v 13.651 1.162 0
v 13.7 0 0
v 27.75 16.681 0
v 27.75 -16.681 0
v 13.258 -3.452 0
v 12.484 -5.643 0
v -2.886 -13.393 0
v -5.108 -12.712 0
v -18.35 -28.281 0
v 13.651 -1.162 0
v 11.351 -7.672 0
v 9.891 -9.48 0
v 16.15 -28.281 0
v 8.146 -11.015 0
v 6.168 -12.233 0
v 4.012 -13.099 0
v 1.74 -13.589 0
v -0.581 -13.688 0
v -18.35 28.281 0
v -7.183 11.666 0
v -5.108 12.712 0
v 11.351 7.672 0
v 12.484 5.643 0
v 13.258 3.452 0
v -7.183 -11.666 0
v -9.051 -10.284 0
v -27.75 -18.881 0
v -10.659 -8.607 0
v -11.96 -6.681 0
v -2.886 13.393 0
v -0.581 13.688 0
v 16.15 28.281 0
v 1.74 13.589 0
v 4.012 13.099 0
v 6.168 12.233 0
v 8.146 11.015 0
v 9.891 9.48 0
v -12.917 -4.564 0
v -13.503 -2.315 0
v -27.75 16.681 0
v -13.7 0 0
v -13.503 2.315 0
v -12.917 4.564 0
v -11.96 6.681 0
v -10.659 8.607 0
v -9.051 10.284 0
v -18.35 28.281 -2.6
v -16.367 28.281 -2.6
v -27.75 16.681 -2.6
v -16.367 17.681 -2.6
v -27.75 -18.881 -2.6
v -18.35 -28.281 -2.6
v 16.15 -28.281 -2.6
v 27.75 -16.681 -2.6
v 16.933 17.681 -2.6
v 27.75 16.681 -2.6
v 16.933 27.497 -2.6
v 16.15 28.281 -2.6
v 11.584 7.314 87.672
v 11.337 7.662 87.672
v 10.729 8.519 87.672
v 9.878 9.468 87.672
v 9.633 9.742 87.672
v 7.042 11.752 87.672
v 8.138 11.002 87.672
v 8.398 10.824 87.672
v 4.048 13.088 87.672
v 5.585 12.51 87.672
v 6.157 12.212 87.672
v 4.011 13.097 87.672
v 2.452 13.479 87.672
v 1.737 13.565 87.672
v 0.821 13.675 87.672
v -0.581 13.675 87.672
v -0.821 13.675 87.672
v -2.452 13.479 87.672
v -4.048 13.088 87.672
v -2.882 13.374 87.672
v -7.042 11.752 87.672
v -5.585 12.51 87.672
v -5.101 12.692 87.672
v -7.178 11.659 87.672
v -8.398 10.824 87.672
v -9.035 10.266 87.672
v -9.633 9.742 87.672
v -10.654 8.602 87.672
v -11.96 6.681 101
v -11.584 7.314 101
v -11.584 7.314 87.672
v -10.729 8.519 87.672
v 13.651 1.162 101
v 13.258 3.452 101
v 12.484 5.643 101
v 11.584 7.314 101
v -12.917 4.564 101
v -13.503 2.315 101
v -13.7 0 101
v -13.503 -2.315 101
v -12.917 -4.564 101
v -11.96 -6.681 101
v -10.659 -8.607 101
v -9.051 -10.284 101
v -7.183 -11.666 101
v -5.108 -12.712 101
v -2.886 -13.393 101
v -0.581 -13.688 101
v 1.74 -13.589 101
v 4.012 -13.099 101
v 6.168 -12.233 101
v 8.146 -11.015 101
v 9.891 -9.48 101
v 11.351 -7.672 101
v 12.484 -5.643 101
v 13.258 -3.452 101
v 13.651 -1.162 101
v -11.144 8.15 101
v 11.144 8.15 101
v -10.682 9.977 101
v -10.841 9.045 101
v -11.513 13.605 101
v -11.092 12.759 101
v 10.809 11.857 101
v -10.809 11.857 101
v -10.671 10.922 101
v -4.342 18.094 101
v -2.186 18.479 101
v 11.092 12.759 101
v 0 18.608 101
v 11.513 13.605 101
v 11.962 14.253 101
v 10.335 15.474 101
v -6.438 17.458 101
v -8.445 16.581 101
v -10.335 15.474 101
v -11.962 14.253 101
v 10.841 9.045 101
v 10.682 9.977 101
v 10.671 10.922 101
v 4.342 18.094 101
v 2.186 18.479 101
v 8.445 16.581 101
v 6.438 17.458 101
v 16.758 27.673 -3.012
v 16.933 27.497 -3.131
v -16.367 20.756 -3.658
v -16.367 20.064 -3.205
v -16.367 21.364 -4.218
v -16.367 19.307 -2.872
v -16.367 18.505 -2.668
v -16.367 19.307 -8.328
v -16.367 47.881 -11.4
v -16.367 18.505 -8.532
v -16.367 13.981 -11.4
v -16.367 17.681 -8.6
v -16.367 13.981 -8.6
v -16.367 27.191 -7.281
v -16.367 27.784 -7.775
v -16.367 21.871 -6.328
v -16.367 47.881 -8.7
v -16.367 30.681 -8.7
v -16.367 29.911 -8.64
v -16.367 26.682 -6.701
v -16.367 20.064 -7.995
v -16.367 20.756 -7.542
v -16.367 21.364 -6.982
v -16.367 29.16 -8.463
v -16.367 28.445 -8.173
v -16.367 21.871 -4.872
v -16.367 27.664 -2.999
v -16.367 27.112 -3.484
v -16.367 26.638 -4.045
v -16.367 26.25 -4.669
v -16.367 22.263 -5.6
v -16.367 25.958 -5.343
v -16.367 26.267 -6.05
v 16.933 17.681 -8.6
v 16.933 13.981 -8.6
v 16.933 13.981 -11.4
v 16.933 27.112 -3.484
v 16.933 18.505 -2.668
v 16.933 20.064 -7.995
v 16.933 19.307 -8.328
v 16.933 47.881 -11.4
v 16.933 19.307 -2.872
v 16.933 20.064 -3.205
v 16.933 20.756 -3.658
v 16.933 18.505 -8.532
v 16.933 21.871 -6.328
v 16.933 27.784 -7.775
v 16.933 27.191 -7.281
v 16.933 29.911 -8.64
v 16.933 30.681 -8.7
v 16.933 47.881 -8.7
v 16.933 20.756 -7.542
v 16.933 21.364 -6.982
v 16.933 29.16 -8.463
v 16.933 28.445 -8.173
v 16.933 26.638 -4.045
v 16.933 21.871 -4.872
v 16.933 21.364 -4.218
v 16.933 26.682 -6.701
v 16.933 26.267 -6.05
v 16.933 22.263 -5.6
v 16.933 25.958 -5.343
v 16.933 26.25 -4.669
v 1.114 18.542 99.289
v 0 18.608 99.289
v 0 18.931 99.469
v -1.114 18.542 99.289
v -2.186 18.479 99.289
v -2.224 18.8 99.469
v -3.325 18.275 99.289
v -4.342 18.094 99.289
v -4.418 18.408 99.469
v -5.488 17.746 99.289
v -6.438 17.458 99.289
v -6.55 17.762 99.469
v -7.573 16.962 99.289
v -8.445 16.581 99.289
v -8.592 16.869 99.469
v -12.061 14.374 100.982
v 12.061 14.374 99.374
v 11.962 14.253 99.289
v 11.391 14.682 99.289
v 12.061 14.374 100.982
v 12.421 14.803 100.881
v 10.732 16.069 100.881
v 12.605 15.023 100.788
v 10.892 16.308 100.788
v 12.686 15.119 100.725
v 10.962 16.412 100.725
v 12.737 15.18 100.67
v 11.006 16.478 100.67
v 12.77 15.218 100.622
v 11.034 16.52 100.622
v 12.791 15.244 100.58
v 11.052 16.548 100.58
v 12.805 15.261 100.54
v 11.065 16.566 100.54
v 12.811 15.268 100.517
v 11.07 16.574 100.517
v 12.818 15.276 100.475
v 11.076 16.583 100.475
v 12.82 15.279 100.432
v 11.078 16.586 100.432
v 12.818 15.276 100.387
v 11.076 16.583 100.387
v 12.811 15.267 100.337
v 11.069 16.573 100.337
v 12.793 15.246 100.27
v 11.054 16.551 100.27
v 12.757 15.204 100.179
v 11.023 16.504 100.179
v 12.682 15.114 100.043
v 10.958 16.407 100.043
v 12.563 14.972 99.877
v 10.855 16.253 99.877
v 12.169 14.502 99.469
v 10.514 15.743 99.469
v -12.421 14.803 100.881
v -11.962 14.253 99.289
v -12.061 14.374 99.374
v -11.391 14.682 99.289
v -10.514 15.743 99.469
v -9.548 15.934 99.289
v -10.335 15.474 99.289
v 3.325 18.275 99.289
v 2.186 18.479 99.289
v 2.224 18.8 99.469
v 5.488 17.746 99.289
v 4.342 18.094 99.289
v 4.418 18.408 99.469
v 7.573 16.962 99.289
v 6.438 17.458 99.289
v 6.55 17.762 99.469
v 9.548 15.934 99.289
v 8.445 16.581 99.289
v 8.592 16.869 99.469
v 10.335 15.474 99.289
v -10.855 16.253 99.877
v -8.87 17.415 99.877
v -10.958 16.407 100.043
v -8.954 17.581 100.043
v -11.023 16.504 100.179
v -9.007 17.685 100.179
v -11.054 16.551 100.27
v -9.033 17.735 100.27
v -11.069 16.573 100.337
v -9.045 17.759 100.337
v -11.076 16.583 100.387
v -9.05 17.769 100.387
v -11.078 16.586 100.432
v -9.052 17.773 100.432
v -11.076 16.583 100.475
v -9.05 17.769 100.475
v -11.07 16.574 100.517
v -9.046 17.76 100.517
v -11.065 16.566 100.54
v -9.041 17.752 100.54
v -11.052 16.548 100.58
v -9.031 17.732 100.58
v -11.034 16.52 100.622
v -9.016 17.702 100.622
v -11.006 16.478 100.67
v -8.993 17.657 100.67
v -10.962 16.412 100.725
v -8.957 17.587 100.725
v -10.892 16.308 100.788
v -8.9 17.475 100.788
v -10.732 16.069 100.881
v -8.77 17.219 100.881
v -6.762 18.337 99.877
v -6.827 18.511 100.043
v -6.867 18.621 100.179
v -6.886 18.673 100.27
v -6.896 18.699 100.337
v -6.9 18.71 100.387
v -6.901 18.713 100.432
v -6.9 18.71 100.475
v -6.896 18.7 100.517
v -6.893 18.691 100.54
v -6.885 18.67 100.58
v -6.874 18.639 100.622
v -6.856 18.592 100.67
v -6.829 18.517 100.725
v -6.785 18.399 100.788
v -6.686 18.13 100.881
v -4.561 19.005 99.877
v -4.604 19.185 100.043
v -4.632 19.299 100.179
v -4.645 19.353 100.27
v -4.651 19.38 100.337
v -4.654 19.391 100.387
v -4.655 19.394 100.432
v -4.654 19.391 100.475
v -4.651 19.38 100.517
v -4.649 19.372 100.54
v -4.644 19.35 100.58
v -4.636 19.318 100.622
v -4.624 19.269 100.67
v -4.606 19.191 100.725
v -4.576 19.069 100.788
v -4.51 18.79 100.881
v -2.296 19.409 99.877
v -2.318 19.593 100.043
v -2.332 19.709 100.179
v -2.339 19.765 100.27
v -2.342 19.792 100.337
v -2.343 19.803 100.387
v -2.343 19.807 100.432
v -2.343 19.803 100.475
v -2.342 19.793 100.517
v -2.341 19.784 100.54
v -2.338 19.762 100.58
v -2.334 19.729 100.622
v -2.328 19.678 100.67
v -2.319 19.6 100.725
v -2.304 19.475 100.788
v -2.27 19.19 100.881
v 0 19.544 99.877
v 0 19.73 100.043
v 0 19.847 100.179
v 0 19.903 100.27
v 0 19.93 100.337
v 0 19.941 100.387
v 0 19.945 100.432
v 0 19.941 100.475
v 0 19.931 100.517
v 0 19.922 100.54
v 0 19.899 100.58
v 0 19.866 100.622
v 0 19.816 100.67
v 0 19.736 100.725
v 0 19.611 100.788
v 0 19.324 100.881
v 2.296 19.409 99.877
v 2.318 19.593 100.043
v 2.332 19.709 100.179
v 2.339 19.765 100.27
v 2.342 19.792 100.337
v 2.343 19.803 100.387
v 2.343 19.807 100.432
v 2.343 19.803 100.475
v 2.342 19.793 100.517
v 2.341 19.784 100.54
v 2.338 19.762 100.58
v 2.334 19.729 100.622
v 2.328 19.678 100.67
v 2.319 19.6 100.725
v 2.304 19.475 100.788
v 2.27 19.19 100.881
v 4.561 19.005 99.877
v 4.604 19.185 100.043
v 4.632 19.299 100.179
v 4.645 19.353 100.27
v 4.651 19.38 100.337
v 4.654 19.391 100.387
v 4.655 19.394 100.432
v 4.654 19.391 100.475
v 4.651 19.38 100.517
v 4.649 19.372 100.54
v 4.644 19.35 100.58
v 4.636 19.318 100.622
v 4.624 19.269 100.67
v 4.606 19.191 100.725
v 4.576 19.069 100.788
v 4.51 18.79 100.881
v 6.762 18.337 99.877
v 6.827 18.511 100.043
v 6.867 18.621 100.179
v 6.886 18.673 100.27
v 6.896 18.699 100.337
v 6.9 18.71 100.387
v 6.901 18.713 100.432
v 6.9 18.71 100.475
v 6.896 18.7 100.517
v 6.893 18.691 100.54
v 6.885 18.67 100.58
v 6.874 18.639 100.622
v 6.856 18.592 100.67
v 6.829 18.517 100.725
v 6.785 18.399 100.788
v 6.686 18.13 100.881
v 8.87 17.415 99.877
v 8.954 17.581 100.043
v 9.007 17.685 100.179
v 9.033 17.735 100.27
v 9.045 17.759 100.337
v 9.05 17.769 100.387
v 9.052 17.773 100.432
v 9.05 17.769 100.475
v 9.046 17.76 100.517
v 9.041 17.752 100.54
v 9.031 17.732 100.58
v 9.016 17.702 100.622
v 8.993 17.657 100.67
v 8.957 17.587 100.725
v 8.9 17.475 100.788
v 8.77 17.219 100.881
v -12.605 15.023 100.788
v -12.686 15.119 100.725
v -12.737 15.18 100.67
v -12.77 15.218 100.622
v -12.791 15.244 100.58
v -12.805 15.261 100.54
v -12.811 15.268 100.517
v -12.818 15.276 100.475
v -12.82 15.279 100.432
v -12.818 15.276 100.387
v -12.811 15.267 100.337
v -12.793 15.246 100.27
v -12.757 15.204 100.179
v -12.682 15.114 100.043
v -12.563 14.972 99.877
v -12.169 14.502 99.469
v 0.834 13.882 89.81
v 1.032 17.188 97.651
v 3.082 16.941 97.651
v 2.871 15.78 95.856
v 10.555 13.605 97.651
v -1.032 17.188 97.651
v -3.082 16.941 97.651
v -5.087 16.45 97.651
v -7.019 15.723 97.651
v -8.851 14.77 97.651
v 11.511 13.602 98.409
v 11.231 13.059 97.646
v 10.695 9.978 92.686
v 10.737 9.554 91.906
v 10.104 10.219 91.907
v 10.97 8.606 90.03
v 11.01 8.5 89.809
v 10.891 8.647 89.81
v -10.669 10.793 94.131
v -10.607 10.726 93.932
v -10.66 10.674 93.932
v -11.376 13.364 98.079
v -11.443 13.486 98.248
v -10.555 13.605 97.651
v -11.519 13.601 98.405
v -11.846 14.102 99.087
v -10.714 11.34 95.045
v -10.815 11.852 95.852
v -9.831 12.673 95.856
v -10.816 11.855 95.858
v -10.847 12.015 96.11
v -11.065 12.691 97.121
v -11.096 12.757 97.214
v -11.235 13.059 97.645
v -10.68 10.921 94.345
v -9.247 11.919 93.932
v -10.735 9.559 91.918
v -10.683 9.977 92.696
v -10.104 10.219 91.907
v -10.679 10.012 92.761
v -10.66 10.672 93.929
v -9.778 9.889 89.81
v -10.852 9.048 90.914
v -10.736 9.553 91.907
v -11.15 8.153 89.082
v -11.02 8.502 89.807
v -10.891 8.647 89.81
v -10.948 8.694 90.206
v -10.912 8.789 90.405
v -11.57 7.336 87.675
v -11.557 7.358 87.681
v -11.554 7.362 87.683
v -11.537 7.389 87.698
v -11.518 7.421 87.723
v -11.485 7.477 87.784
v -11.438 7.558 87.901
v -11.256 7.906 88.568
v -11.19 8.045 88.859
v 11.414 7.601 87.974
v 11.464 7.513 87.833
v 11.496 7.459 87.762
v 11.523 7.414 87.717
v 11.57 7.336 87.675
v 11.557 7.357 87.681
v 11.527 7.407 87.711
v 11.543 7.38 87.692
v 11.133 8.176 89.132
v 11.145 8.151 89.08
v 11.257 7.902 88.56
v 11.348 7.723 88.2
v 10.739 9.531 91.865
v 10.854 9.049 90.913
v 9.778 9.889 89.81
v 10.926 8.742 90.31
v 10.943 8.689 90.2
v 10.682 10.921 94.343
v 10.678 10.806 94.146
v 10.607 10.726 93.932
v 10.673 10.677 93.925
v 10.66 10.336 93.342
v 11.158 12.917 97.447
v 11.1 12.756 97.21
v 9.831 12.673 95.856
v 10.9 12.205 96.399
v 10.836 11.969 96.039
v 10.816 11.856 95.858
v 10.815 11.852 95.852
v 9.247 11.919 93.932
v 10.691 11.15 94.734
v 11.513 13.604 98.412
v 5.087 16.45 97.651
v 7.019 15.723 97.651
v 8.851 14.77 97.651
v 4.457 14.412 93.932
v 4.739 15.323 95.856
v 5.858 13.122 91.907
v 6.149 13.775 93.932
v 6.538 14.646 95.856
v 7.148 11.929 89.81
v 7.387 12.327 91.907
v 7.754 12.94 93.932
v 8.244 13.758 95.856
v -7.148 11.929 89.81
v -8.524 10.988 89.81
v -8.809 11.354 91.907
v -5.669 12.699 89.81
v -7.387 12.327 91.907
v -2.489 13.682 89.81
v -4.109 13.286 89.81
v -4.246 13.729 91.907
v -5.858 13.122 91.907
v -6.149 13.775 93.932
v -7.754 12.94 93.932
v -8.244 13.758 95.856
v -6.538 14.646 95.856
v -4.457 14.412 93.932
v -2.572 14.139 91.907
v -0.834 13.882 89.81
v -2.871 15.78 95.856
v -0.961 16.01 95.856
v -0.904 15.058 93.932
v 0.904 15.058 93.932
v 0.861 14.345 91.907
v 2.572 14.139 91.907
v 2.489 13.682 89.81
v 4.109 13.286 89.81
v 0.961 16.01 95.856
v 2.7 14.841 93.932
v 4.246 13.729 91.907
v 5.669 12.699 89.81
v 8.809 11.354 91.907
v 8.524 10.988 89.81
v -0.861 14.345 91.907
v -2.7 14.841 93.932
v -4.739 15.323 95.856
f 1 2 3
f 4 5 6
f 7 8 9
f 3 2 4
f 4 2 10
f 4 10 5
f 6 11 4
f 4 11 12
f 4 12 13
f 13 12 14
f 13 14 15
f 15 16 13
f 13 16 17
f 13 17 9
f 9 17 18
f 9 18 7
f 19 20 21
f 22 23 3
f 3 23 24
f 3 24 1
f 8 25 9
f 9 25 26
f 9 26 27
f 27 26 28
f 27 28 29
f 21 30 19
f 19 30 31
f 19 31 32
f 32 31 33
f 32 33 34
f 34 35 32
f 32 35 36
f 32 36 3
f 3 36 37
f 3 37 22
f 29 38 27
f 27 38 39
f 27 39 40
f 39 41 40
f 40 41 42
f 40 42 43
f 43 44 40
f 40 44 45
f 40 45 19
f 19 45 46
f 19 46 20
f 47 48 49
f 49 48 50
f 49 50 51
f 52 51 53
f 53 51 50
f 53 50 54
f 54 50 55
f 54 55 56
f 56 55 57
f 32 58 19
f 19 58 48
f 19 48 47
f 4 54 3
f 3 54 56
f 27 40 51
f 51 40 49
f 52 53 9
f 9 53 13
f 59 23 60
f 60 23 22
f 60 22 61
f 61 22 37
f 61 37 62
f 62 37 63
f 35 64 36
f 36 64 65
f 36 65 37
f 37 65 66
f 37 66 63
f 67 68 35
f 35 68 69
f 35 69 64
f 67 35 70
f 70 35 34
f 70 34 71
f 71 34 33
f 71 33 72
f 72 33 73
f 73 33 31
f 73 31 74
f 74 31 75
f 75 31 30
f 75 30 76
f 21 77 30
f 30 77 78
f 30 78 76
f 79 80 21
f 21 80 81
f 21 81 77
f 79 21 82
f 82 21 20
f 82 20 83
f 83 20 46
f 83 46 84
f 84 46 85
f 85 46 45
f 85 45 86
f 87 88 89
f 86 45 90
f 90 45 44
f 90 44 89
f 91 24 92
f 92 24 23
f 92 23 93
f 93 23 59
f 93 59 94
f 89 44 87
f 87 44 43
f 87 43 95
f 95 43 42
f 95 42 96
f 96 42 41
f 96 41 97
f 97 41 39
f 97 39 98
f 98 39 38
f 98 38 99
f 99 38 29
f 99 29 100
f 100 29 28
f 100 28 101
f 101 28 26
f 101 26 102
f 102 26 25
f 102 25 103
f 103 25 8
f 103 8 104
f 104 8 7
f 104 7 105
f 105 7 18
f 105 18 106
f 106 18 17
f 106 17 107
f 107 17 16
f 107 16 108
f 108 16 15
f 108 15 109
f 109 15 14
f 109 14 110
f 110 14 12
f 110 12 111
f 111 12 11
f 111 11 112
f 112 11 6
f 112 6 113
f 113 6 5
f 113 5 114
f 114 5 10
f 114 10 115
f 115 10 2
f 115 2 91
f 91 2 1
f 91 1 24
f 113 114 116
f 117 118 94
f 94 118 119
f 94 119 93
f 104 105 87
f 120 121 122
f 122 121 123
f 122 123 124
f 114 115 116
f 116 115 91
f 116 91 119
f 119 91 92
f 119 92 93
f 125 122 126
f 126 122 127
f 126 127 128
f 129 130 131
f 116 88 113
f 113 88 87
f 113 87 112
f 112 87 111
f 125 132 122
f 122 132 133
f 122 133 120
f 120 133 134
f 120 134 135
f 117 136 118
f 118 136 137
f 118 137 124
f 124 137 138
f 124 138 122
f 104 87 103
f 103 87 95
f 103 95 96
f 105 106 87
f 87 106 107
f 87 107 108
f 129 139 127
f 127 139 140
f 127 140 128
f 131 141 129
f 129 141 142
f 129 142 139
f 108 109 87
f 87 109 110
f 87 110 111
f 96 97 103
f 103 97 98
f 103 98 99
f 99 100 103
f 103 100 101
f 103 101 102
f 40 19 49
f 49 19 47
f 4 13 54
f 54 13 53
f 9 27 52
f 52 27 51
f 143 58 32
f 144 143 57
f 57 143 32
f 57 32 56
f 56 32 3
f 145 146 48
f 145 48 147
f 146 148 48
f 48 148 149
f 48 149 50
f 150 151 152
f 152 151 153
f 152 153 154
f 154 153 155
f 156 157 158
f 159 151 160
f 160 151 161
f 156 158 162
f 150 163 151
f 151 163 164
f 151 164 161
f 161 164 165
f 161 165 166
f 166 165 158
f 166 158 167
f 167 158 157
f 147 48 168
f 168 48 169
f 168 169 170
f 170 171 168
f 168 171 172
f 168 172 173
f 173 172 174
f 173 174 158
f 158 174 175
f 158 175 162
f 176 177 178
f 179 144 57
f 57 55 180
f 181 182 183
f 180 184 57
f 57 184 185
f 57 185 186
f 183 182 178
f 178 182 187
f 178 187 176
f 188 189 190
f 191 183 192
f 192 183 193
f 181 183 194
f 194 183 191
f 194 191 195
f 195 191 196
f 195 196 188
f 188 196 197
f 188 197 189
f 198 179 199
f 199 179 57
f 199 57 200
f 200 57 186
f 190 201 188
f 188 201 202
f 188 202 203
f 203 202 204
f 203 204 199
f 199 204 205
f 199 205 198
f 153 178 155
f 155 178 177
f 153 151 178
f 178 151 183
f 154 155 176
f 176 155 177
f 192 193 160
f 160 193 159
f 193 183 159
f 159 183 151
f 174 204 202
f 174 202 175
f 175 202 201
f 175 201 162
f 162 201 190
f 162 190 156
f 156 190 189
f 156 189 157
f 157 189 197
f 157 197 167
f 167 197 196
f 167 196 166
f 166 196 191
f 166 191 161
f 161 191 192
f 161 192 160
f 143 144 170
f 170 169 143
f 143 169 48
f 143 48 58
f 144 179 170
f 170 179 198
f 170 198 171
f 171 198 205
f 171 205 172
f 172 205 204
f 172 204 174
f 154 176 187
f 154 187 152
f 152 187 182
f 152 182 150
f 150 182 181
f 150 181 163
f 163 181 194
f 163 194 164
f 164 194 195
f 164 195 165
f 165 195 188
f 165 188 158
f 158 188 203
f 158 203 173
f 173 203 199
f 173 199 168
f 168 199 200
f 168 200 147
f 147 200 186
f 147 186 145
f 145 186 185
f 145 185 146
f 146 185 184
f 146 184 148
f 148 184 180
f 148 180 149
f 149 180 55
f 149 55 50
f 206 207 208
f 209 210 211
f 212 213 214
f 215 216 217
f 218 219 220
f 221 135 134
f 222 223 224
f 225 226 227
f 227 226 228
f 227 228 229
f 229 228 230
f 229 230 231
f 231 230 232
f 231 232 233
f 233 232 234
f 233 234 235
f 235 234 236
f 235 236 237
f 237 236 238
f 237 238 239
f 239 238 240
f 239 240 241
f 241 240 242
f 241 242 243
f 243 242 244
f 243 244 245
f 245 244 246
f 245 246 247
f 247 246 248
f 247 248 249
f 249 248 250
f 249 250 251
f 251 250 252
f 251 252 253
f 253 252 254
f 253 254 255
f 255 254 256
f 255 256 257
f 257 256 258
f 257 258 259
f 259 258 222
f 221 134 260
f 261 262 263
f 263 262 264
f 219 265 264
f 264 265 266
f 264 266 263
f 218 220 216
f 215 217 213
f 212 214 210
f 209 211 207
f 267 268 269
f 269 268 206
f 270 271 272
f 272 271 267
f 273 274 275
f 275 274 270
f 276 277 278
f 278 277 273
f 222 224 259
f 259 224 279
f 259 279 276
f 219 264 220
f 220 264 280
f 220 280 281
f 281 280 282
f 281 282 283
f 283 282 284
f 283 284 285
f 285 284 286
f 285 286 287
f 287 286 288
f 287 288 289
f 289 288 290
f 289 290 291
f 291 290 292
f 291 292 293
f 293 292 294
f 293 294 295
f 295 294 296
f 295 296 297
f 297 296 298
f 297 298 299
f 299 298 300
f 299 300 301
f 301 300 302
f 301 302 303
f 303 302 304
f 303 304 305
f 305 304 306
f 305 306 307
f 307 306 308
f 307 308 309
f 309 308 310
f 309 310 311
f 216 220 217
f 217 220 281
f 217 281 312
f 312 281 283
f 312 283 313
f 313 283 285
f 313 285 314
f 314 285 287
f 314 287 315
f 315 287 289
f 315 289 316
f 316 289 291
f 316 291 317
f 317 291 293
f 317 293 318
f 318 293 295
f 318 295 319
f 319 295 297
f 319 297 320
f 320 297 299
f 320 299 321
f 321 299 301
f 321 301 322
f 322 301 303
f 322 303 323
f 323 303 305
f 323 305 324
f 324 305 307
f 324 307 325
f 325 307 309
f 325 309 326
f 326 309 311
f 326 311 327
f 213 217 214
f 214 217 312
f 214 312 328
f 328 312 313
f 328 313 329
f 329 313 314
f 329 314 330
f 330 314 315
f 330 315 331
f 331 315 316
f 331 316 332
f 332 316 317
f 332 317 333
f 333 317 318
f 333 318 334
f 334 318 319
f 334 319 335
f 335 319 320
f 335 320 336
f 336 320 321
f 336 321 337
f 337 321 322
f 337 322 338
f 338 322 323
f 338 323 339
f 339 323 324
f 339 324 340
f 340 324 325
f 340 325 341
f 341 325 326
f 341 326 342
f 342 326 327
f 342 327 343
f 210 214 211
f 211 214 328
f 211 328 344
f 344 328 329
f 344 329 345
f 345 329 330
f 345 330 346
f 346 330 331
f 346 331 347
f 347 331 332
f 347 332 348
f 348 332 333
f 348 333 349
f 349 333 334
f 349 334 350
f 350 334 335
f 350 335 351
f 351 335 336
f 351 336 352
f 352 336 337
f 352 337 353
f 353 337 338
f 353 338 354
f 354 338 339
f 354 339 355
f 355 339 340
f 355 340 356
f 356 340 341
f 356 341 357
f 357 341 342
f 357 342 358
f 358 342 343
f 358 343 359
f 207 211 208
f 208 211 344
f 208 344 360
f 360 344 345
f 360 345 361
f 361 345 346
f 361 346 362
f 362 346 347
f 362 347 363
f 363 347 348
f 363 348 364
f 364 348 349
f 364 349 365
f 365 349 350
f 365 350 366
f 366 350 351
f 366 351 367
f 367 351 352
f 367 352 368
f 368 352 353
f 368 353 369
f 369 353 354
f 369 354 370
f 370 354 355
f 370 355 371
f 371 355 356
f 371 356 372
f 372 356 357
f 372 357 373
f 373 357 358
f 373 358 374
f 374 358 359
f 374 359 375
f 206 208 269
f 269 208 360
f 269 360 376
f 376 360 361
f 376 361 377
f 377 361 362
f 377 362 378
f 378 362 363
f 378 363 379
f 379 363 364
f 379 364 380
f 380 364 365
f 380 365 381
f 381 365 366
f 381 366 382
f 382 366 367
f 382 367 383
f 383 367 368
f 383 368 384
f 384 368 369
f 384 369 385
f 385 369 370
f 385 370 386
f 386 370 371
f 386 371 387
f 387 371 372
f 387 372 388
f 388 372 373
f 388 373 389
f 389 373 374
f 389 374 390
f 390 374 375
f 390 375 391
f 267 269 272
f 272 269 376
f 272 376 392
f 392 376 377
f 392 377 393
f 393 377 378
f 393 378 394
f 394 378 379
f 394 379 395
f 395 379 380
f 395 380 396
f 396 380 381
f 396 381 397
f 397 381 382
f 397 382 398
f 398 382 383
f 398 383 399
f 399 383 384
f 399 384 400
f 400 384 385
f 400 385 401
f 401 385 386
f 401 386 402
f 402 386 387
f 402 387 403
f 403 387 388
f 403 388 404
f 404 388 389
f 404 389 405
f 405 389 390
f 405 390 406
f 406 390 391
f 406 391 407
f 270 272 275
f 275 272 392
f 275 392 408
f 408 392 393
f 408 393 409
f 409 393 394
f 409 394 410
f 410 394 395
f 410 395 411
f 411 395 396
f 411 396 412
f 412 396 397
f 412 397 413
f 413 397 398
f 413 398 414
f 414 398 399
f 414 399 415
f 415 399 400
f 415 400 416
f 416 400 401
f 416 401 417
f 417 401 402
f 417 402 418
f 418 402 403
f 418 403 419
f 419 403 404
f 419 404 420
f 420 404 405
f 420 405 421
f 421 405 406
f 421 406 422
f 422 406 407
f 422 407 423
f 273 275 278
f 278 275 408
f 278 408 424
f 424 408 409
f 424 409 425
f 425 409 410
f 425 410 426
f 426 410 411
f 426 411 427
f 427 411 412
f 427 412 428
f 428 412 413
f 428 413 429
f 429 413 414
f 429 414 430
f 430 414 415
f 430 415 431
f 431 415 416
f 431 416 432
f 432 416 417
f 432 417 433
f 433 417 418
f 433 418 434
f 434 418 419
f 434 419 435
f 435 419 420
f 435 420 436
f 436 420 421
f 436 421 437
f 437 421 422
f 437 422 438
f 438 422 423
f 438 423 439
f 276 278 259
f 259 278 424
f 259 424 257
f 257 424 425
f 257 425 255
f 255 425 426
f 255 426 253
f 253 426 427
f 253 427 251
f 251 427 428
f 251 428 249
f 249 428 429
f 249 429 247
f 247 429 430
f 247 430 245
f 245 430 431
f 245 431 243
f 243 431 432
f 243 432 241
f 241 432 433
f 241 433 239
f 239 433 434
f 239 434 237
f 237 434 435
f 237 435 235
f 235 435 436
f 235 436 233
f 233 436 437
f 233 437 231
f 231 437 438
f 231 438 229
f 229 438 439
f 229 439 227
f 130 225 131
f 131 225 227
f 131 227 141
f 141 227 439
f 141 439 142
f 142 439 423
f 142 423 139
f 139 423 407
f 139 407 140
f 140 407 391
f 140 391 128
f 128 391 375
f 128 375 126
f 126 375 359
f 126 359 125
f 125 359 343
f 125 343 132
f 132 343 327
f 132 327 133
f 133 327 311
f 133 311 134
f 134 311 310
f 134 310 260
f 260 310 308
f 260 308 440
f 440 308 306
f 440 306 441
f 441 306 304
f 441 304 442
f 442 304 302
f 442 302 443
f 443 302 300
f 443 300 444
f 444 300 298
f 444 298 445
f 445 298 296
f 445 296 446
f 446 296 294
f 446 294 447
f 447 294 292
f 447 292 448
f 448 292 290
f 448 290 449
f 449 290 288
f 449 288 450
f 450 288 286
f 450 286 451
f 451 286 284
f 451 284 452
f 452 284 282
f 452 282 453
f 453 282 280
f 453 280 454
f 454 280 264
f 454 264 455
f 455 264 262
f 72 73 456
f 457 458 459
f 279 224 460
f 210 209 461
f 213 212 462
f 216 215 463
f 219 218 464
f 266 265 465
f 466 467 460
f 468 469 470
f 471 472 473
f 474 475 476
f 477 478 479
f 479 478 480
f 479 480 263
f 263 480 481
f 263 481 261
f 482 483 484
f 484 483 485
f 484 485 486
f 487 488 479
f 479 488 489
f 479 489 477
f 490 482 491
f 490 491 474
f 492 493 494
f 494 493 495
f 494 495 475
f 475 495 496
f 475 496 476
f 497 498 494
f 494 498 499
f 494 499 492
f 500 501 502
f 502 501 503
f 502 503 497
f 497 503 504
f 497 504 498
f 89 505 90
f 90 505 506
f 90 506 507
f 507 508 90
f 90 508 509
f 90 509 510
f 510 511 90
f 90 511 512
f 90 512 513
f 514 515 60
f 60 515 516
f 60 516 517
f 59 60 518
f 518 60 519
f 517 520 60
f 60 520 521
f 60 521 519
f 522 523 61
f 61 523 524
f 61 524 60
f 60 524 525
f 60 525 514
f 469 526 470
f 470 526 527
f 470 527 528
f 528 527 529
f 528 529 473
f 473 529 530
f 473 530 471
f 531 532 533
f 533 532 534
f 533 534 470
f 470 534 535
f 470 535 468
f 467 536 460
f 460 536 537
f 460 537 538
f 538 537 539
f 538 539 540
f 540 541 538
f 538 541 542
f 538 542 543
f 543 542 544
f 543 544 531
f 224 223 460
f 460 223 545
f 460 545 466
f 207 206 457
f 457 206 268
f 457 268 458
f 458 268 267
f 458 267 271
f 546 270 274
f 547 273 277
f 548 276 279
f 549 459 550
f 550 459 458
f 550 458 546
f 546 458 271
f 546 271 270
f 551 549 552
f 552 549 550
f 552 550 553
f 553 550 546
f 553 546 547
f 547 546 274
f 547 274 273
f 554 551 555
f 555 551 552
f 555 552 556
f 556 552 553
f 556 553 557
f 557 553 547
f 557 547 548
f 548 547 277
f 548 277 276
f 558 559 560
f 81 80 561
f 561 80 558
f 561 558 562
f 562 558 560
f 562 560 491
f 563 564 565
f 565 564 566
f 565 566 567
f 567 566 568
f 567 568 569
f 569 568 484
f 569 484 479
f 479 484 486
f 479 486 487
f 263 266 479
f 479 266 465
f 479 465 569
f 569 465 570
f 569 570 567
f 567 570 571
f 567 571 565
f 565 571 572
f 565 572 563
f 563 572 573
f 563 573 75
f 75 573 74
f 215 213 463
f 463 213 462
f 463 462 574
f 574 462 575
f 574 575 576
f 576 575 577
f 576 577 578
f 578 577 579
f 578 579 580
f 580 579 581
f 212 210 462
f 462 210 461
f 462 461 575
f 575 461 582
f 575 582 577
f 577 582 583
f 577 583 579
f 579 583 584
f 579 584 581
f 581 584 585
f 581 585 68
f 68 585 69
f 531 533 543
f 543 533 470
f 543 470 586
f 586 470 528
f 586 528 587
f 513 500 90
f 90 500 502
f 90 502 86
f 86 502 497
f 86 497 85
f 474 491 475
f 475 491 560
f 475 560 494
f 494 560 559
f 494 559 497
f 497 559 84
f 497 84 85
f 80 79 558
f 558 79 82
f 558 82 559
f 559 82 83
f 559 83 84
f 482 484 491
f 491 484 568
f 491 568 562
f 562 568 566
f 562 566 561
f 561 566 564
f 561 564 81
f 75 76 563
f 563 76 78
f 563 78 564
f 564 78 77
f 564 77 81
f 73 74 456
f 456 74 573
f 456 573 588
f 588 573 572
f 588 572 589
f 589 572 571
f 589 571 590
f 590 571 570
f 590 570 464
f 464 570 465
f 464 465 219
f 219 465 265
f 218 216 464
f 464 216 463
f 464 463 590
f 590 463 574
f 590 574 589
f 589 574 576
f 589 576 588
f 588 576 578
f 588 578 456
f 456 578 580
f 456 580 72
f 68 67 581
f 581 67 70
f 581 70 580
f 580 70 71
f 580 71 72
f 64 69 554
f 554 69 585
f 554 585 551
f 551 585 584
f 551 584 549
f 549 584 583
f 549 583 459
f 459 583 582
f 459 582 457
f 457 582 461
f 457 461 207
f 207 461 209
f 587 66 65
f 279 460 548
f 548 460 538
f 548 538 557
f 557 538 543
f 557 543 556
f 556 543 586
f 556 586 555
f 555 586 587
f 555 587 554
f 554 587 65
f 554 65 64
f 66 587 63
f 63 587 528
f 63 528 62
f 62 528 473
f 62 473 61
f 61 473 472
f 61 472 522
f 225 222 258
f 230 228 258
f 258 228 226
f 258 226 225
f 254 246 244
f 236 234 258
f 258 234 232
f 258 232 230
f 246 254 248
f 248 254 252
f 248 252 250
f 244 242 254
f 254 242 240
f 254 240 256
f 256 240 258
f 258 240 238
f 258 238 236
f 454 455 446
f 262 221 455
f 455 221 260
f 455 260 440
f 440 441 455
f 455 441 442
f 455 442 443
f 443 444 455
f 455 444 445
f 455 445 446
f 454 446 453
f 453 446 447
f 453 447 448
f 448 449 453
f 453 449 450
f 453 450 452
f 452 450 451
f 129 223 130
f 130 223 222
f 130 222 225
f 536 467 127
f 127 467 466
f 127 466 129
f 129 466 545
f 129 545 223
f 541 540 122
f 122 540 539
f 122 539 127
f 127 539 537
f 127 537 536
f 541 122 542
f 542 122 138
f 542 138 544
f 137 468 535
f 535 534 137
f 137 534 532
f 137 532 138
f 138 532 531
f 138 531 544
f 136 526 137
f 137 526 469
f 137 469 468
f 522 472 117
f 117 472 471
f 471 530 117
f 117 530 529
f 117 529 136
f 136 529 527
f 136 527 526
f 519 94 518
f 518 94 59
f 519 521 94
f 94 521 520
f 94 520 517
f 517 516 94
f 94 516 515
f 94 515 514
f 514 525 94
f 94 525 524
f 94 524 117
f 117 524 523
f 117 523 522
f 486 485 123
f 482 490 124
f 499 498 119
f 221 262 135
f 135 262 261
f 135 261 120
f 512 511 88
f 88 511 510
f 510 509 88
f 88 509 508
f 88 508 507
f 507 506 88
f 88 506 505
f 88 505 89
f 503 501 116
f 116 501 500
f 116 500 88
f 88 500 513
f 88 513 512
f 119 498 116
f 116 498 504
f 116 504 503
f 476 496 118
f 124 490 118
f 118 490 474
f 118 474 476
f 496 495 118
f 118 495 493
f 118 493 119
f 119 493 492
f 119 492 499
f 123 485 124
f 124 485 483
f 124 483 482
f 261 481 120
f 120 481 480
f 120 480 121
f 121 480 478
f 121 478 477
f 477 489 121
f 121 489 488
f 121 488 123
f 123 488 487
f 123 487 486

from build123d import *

# Parameters (mm, degrees)
SKETCH1_R                = 13.7
BOSS_EXTRUDE1_DEPTH      = 101
SKETCH5_W                = 55.5
SKETCH5_H                = 56.561345004
BOSS_EXTRUDE2_DEPTH      = 2.6
CUT_EXTRUDE4_DEPTH       = 2.6
BOSS_EXTRUDE4_DEPTH      = 6
SKETCH8_W                = 33.3
SKETCH8_H                = 11.7
BOSS_EXTRUDE5_DEPTH      = 2.8
SKETCH9_W                = 33.3
SKETCH9_H                = 2.7
BOSS_EXTRUDE6_DEPTH      = 22.2
FILLET2_R                = 5
REVOLVE1_ANGLE           = 40
REVOLVE1_OTHER_WAY_ANGLE = 40
FILLET4_R                = 6
FILLET5_R                = 6


with BuildPart() as part:
    # Sketch1 → Boss-Extrude1 (new body)
    with BuildSketch(Plane.XY):
        with Locations(Location((0, 0, 0), (0, 0, 180))):
            Circle(SKETCH1_R)
    extrude(amount=BOSS_EXTRUDE1_DEPTH)

    # Sketch5 → Boss-Extrude2 (add)
    with BuildSketch(Plane(origin=(0, 0, 0), x_dir=(-1, 0, 0), z_dir=(0, 0, -1))):
        Rectangle(SKETCH5_W, SKETCH5_H)
    extrude(amount=BOSS_EXTRUDE2_DEPTH)

    # Sketch6 → Cut-Extrude4 (cut)
    with BuildSketch(Plane(origin=(0, 0, -2.6), x_dir=(-1, 0, 0), z_dir=(0, 0, -1))):
        Polygon((27.75, 28.280672502), (18.35, 28.280672502), (27.75, 16.680672502), align=None)
        Polygon((-16.15, -28.280672502), (-27.75, -16.680672502), (-27.75, -28.280672502), align=None)
        Polygon((27.75, -18.880672502), (18.35, -28.280672502), (27.75, -28.280672502), align=None)
        Polygon((-27.75, 16.680672502), (-27.75, 28.280672502), (-16.15, 28.280672502), align=None)
    extrude(amount=-CUT_EXTRUDE4_DEPTH, mode=Mode.SUBTRACT)

    # Sketch7 → Boss-Extrude4 (add)
    with BuildSketch(Plane(origin=(0, 0, -2.6), x_dir=(-1, 0, 0), z_dir=(0, 0, -1))):
        Polygon((1.1, 25.680672502), (16.366645995, 25.680672502), (16.366645995, 22.680672502), (-16.933354005, 22.680672502), (-16.933354005, 25.680672502), align=None)
    extrude(amount=BOSS_EXTRUDE4_DEPTH)

    # Sketch8 → Boss-Extrude5 (add)
    with BuildSketch(Plane(origin=(0, 0, -8.6), x_dir=(-1, 0, 0), z_dir=(0, 0, -1))):
        with Locations((-0.283354005, 19.830672502)):
            Rectangle(SKETCH8_W, SKETCH8_H)
    extrude(amount=BOSS_EXTRUDE5_DEPTH)

    # Sketch9 → Boss-Extrude6 (add)
    with BuildSketch(Plane(origin=(0, 25.680672502, 0), x_dir=(1, 0, 0), z_dir=(0, 1, 0))):
        with Locations((0.283354005, 10.05)):
            Rectangle(SKETCH9_W, SKETCH9_H)
    extrude(amount=BOSS_EXTRUDE6_DEPTH)

    # Fillet2
    # the kernel refuses this fillet: 5 mm, written as the material it adds along each edge
    with BuildSketch(Plane(origin=(-16.366645995, 25.680672502, -2.6), x_dir=(0, 1, 0), z_dir=(1, 0, 0))) as fillet2_piece_1_section:
        with BuildLine():
            CenterArc((5, -4.38634244), FILLET2_R, 118.685402014, 61.314597986)
            Line((0, -4.38634244), (-0.1, -4.38634244))
            Line((-0.1, -4.38634244), (-0.1, 0))
            Line((-0.1, 0), (0, 0.1))
            ThreePointArc((0, 0.1), (1.3, 0.1), (2.552, 0.087726849))
            Line((2.552, 0.087726849), (2.6, 0))
        make_face()
    fillet2_piece_1 = extrude(amount=33.3, mode=Mode.PRIVATE)
    fillet2_piece_1 = split(fillet2_piece_1, bisect_by=Plane(origin=(9.175527955, 35.255144547, -3.690317045), z_dir=(-0.7071067811865442, -0.7071067811865509, 0)), keep=Keep.TOP, mode=Mode.PRIVATE)
    add(fillet2_piece_1)
    with BuildSketch(Plane(origin=(-16.366645995, 22.680672502, -2.6), x_dir=(0, -1, 0), z_dir=(1, 0, 0))) as fillet2_piece_2:
        with BuildLine():
            CenterArc((FILLET2_R, FILLET2_R), FILLET2_R, 180, 90)
            Line((0, FILLET2_R), (-FILLET2_R * 0.02, FILLET2_R))
            Line((-FILLET2_R * 0.02, FILLET2_R), (-FILLET2_R * 0.02, -FILLET2_R * 0.02))
            Line((-FILLET2_R * 0.02, -FILLET2_R * 0.02), (FILLET2_R, -FILLET2_R * 0.02))
            Line((FILLET2_R, -FILLET2_R * 0.02), (FILLET2_R, 0))
        make_face()
    extrude(amount=33.3)
    with BuildSketch(Plane(origin=(-16.366645995, 22.680672502, -8.6), x_dir=(0, -1, 0), z_dir=(1, 0, 0)), Plane(origin=(16.933354005, 25.680672502, -8.7), x_dir=(0, 1, 0), z_dir=(-1, 0, 0))) as fillet2_piece_3:
        with BuildLine():
            CenterArc((FILLET2_R, -FILLET2_R), FILLET2_R, 90, 90)
            Line((0, -FILLET2_R), (-FILLET2_R * 0.02, -FILLET2_R))
            Line((-FILLET2_R * 0.02, -FILLET2_R), (-FILLET2_R * 0.02, FILLET2_R * 0.02))
            Line((-FILLET2_R * 0.02, FILLET2_R * 0.02), (FILLET2_R, FILLET2_R * 0.02))
            Line((FILLET2_R, FILLET2_R * 0.02), (FILLET2_R, 0))
        make_face()
    extrude(amount=33.3)

    # Sketch10 → Revolve1 (revolve)
    with BuildSketch(Plane.ZY):
        with BuildLine():
            Line((101, 13.7), (101, 18.607528808))
            add(Edge.make_bspline(
                [(101, 18.607528808), (100.71882797, 21.282411004), (99.289162218, 18.607528808)],
                knots=[0, 0, 0, 1, 1, 1], degree=2))
            ThreePointArc((99.289162218, 18.607528808), (93.932259194, 15.08494276), (87.67231063, 13.7))
            Line((87.67231063, 13.7), (101, 13.7))
        make_face()
    revolve(axis=Axis((0, 0, 101.100764075), (0, 0, -1)), revolution_arc=REVOLVE1_ANGLE)

    # Sketch10 → Revolve1 other way (revolve)
    with BuildSketch(Plane.ZY):
        with BuildLine():
            Line((101, 13.7), (101, 18.607528808))
            add(Edge.make_bspline(
                [(101, 18.607528808), (100.71882797, 21.282411004), (99.289162218, 18.607528808)],
                knots=[0, 0, 0, 1, 1, 1], degree=2))
            ThreePointArc((99.289162218, 18.607528808), (93.932259194, 15.08494276), (87.67231063, 13.7))
            Line((87.67231063, 13.7), (101, 13.7))
        make_face()
    revolve(axis=Axis((0, 0, 101.100764075), (0, 0, 1)), revolution_arc=REVOLVE1_OTHER_WAY_ANGLE)

    # Fillet4
    fillet4_edges = [part.edges().sort_by_distance(p)[0] for p in [
        (8.806190253, 10.494808871, 94.336155315),
    ]]
    fillet(fillet4_edges, radius=FILLET4_R)

    # Fillet5
    fillet5_edges = [part.edges().sort_by_distance(p)[0] for p in [
        (-8.806190253, 10.494808871, 94.336155315),
    ]]
    fillet(fillet5_edges, radius=FILLET5_R)


solid = part.part
